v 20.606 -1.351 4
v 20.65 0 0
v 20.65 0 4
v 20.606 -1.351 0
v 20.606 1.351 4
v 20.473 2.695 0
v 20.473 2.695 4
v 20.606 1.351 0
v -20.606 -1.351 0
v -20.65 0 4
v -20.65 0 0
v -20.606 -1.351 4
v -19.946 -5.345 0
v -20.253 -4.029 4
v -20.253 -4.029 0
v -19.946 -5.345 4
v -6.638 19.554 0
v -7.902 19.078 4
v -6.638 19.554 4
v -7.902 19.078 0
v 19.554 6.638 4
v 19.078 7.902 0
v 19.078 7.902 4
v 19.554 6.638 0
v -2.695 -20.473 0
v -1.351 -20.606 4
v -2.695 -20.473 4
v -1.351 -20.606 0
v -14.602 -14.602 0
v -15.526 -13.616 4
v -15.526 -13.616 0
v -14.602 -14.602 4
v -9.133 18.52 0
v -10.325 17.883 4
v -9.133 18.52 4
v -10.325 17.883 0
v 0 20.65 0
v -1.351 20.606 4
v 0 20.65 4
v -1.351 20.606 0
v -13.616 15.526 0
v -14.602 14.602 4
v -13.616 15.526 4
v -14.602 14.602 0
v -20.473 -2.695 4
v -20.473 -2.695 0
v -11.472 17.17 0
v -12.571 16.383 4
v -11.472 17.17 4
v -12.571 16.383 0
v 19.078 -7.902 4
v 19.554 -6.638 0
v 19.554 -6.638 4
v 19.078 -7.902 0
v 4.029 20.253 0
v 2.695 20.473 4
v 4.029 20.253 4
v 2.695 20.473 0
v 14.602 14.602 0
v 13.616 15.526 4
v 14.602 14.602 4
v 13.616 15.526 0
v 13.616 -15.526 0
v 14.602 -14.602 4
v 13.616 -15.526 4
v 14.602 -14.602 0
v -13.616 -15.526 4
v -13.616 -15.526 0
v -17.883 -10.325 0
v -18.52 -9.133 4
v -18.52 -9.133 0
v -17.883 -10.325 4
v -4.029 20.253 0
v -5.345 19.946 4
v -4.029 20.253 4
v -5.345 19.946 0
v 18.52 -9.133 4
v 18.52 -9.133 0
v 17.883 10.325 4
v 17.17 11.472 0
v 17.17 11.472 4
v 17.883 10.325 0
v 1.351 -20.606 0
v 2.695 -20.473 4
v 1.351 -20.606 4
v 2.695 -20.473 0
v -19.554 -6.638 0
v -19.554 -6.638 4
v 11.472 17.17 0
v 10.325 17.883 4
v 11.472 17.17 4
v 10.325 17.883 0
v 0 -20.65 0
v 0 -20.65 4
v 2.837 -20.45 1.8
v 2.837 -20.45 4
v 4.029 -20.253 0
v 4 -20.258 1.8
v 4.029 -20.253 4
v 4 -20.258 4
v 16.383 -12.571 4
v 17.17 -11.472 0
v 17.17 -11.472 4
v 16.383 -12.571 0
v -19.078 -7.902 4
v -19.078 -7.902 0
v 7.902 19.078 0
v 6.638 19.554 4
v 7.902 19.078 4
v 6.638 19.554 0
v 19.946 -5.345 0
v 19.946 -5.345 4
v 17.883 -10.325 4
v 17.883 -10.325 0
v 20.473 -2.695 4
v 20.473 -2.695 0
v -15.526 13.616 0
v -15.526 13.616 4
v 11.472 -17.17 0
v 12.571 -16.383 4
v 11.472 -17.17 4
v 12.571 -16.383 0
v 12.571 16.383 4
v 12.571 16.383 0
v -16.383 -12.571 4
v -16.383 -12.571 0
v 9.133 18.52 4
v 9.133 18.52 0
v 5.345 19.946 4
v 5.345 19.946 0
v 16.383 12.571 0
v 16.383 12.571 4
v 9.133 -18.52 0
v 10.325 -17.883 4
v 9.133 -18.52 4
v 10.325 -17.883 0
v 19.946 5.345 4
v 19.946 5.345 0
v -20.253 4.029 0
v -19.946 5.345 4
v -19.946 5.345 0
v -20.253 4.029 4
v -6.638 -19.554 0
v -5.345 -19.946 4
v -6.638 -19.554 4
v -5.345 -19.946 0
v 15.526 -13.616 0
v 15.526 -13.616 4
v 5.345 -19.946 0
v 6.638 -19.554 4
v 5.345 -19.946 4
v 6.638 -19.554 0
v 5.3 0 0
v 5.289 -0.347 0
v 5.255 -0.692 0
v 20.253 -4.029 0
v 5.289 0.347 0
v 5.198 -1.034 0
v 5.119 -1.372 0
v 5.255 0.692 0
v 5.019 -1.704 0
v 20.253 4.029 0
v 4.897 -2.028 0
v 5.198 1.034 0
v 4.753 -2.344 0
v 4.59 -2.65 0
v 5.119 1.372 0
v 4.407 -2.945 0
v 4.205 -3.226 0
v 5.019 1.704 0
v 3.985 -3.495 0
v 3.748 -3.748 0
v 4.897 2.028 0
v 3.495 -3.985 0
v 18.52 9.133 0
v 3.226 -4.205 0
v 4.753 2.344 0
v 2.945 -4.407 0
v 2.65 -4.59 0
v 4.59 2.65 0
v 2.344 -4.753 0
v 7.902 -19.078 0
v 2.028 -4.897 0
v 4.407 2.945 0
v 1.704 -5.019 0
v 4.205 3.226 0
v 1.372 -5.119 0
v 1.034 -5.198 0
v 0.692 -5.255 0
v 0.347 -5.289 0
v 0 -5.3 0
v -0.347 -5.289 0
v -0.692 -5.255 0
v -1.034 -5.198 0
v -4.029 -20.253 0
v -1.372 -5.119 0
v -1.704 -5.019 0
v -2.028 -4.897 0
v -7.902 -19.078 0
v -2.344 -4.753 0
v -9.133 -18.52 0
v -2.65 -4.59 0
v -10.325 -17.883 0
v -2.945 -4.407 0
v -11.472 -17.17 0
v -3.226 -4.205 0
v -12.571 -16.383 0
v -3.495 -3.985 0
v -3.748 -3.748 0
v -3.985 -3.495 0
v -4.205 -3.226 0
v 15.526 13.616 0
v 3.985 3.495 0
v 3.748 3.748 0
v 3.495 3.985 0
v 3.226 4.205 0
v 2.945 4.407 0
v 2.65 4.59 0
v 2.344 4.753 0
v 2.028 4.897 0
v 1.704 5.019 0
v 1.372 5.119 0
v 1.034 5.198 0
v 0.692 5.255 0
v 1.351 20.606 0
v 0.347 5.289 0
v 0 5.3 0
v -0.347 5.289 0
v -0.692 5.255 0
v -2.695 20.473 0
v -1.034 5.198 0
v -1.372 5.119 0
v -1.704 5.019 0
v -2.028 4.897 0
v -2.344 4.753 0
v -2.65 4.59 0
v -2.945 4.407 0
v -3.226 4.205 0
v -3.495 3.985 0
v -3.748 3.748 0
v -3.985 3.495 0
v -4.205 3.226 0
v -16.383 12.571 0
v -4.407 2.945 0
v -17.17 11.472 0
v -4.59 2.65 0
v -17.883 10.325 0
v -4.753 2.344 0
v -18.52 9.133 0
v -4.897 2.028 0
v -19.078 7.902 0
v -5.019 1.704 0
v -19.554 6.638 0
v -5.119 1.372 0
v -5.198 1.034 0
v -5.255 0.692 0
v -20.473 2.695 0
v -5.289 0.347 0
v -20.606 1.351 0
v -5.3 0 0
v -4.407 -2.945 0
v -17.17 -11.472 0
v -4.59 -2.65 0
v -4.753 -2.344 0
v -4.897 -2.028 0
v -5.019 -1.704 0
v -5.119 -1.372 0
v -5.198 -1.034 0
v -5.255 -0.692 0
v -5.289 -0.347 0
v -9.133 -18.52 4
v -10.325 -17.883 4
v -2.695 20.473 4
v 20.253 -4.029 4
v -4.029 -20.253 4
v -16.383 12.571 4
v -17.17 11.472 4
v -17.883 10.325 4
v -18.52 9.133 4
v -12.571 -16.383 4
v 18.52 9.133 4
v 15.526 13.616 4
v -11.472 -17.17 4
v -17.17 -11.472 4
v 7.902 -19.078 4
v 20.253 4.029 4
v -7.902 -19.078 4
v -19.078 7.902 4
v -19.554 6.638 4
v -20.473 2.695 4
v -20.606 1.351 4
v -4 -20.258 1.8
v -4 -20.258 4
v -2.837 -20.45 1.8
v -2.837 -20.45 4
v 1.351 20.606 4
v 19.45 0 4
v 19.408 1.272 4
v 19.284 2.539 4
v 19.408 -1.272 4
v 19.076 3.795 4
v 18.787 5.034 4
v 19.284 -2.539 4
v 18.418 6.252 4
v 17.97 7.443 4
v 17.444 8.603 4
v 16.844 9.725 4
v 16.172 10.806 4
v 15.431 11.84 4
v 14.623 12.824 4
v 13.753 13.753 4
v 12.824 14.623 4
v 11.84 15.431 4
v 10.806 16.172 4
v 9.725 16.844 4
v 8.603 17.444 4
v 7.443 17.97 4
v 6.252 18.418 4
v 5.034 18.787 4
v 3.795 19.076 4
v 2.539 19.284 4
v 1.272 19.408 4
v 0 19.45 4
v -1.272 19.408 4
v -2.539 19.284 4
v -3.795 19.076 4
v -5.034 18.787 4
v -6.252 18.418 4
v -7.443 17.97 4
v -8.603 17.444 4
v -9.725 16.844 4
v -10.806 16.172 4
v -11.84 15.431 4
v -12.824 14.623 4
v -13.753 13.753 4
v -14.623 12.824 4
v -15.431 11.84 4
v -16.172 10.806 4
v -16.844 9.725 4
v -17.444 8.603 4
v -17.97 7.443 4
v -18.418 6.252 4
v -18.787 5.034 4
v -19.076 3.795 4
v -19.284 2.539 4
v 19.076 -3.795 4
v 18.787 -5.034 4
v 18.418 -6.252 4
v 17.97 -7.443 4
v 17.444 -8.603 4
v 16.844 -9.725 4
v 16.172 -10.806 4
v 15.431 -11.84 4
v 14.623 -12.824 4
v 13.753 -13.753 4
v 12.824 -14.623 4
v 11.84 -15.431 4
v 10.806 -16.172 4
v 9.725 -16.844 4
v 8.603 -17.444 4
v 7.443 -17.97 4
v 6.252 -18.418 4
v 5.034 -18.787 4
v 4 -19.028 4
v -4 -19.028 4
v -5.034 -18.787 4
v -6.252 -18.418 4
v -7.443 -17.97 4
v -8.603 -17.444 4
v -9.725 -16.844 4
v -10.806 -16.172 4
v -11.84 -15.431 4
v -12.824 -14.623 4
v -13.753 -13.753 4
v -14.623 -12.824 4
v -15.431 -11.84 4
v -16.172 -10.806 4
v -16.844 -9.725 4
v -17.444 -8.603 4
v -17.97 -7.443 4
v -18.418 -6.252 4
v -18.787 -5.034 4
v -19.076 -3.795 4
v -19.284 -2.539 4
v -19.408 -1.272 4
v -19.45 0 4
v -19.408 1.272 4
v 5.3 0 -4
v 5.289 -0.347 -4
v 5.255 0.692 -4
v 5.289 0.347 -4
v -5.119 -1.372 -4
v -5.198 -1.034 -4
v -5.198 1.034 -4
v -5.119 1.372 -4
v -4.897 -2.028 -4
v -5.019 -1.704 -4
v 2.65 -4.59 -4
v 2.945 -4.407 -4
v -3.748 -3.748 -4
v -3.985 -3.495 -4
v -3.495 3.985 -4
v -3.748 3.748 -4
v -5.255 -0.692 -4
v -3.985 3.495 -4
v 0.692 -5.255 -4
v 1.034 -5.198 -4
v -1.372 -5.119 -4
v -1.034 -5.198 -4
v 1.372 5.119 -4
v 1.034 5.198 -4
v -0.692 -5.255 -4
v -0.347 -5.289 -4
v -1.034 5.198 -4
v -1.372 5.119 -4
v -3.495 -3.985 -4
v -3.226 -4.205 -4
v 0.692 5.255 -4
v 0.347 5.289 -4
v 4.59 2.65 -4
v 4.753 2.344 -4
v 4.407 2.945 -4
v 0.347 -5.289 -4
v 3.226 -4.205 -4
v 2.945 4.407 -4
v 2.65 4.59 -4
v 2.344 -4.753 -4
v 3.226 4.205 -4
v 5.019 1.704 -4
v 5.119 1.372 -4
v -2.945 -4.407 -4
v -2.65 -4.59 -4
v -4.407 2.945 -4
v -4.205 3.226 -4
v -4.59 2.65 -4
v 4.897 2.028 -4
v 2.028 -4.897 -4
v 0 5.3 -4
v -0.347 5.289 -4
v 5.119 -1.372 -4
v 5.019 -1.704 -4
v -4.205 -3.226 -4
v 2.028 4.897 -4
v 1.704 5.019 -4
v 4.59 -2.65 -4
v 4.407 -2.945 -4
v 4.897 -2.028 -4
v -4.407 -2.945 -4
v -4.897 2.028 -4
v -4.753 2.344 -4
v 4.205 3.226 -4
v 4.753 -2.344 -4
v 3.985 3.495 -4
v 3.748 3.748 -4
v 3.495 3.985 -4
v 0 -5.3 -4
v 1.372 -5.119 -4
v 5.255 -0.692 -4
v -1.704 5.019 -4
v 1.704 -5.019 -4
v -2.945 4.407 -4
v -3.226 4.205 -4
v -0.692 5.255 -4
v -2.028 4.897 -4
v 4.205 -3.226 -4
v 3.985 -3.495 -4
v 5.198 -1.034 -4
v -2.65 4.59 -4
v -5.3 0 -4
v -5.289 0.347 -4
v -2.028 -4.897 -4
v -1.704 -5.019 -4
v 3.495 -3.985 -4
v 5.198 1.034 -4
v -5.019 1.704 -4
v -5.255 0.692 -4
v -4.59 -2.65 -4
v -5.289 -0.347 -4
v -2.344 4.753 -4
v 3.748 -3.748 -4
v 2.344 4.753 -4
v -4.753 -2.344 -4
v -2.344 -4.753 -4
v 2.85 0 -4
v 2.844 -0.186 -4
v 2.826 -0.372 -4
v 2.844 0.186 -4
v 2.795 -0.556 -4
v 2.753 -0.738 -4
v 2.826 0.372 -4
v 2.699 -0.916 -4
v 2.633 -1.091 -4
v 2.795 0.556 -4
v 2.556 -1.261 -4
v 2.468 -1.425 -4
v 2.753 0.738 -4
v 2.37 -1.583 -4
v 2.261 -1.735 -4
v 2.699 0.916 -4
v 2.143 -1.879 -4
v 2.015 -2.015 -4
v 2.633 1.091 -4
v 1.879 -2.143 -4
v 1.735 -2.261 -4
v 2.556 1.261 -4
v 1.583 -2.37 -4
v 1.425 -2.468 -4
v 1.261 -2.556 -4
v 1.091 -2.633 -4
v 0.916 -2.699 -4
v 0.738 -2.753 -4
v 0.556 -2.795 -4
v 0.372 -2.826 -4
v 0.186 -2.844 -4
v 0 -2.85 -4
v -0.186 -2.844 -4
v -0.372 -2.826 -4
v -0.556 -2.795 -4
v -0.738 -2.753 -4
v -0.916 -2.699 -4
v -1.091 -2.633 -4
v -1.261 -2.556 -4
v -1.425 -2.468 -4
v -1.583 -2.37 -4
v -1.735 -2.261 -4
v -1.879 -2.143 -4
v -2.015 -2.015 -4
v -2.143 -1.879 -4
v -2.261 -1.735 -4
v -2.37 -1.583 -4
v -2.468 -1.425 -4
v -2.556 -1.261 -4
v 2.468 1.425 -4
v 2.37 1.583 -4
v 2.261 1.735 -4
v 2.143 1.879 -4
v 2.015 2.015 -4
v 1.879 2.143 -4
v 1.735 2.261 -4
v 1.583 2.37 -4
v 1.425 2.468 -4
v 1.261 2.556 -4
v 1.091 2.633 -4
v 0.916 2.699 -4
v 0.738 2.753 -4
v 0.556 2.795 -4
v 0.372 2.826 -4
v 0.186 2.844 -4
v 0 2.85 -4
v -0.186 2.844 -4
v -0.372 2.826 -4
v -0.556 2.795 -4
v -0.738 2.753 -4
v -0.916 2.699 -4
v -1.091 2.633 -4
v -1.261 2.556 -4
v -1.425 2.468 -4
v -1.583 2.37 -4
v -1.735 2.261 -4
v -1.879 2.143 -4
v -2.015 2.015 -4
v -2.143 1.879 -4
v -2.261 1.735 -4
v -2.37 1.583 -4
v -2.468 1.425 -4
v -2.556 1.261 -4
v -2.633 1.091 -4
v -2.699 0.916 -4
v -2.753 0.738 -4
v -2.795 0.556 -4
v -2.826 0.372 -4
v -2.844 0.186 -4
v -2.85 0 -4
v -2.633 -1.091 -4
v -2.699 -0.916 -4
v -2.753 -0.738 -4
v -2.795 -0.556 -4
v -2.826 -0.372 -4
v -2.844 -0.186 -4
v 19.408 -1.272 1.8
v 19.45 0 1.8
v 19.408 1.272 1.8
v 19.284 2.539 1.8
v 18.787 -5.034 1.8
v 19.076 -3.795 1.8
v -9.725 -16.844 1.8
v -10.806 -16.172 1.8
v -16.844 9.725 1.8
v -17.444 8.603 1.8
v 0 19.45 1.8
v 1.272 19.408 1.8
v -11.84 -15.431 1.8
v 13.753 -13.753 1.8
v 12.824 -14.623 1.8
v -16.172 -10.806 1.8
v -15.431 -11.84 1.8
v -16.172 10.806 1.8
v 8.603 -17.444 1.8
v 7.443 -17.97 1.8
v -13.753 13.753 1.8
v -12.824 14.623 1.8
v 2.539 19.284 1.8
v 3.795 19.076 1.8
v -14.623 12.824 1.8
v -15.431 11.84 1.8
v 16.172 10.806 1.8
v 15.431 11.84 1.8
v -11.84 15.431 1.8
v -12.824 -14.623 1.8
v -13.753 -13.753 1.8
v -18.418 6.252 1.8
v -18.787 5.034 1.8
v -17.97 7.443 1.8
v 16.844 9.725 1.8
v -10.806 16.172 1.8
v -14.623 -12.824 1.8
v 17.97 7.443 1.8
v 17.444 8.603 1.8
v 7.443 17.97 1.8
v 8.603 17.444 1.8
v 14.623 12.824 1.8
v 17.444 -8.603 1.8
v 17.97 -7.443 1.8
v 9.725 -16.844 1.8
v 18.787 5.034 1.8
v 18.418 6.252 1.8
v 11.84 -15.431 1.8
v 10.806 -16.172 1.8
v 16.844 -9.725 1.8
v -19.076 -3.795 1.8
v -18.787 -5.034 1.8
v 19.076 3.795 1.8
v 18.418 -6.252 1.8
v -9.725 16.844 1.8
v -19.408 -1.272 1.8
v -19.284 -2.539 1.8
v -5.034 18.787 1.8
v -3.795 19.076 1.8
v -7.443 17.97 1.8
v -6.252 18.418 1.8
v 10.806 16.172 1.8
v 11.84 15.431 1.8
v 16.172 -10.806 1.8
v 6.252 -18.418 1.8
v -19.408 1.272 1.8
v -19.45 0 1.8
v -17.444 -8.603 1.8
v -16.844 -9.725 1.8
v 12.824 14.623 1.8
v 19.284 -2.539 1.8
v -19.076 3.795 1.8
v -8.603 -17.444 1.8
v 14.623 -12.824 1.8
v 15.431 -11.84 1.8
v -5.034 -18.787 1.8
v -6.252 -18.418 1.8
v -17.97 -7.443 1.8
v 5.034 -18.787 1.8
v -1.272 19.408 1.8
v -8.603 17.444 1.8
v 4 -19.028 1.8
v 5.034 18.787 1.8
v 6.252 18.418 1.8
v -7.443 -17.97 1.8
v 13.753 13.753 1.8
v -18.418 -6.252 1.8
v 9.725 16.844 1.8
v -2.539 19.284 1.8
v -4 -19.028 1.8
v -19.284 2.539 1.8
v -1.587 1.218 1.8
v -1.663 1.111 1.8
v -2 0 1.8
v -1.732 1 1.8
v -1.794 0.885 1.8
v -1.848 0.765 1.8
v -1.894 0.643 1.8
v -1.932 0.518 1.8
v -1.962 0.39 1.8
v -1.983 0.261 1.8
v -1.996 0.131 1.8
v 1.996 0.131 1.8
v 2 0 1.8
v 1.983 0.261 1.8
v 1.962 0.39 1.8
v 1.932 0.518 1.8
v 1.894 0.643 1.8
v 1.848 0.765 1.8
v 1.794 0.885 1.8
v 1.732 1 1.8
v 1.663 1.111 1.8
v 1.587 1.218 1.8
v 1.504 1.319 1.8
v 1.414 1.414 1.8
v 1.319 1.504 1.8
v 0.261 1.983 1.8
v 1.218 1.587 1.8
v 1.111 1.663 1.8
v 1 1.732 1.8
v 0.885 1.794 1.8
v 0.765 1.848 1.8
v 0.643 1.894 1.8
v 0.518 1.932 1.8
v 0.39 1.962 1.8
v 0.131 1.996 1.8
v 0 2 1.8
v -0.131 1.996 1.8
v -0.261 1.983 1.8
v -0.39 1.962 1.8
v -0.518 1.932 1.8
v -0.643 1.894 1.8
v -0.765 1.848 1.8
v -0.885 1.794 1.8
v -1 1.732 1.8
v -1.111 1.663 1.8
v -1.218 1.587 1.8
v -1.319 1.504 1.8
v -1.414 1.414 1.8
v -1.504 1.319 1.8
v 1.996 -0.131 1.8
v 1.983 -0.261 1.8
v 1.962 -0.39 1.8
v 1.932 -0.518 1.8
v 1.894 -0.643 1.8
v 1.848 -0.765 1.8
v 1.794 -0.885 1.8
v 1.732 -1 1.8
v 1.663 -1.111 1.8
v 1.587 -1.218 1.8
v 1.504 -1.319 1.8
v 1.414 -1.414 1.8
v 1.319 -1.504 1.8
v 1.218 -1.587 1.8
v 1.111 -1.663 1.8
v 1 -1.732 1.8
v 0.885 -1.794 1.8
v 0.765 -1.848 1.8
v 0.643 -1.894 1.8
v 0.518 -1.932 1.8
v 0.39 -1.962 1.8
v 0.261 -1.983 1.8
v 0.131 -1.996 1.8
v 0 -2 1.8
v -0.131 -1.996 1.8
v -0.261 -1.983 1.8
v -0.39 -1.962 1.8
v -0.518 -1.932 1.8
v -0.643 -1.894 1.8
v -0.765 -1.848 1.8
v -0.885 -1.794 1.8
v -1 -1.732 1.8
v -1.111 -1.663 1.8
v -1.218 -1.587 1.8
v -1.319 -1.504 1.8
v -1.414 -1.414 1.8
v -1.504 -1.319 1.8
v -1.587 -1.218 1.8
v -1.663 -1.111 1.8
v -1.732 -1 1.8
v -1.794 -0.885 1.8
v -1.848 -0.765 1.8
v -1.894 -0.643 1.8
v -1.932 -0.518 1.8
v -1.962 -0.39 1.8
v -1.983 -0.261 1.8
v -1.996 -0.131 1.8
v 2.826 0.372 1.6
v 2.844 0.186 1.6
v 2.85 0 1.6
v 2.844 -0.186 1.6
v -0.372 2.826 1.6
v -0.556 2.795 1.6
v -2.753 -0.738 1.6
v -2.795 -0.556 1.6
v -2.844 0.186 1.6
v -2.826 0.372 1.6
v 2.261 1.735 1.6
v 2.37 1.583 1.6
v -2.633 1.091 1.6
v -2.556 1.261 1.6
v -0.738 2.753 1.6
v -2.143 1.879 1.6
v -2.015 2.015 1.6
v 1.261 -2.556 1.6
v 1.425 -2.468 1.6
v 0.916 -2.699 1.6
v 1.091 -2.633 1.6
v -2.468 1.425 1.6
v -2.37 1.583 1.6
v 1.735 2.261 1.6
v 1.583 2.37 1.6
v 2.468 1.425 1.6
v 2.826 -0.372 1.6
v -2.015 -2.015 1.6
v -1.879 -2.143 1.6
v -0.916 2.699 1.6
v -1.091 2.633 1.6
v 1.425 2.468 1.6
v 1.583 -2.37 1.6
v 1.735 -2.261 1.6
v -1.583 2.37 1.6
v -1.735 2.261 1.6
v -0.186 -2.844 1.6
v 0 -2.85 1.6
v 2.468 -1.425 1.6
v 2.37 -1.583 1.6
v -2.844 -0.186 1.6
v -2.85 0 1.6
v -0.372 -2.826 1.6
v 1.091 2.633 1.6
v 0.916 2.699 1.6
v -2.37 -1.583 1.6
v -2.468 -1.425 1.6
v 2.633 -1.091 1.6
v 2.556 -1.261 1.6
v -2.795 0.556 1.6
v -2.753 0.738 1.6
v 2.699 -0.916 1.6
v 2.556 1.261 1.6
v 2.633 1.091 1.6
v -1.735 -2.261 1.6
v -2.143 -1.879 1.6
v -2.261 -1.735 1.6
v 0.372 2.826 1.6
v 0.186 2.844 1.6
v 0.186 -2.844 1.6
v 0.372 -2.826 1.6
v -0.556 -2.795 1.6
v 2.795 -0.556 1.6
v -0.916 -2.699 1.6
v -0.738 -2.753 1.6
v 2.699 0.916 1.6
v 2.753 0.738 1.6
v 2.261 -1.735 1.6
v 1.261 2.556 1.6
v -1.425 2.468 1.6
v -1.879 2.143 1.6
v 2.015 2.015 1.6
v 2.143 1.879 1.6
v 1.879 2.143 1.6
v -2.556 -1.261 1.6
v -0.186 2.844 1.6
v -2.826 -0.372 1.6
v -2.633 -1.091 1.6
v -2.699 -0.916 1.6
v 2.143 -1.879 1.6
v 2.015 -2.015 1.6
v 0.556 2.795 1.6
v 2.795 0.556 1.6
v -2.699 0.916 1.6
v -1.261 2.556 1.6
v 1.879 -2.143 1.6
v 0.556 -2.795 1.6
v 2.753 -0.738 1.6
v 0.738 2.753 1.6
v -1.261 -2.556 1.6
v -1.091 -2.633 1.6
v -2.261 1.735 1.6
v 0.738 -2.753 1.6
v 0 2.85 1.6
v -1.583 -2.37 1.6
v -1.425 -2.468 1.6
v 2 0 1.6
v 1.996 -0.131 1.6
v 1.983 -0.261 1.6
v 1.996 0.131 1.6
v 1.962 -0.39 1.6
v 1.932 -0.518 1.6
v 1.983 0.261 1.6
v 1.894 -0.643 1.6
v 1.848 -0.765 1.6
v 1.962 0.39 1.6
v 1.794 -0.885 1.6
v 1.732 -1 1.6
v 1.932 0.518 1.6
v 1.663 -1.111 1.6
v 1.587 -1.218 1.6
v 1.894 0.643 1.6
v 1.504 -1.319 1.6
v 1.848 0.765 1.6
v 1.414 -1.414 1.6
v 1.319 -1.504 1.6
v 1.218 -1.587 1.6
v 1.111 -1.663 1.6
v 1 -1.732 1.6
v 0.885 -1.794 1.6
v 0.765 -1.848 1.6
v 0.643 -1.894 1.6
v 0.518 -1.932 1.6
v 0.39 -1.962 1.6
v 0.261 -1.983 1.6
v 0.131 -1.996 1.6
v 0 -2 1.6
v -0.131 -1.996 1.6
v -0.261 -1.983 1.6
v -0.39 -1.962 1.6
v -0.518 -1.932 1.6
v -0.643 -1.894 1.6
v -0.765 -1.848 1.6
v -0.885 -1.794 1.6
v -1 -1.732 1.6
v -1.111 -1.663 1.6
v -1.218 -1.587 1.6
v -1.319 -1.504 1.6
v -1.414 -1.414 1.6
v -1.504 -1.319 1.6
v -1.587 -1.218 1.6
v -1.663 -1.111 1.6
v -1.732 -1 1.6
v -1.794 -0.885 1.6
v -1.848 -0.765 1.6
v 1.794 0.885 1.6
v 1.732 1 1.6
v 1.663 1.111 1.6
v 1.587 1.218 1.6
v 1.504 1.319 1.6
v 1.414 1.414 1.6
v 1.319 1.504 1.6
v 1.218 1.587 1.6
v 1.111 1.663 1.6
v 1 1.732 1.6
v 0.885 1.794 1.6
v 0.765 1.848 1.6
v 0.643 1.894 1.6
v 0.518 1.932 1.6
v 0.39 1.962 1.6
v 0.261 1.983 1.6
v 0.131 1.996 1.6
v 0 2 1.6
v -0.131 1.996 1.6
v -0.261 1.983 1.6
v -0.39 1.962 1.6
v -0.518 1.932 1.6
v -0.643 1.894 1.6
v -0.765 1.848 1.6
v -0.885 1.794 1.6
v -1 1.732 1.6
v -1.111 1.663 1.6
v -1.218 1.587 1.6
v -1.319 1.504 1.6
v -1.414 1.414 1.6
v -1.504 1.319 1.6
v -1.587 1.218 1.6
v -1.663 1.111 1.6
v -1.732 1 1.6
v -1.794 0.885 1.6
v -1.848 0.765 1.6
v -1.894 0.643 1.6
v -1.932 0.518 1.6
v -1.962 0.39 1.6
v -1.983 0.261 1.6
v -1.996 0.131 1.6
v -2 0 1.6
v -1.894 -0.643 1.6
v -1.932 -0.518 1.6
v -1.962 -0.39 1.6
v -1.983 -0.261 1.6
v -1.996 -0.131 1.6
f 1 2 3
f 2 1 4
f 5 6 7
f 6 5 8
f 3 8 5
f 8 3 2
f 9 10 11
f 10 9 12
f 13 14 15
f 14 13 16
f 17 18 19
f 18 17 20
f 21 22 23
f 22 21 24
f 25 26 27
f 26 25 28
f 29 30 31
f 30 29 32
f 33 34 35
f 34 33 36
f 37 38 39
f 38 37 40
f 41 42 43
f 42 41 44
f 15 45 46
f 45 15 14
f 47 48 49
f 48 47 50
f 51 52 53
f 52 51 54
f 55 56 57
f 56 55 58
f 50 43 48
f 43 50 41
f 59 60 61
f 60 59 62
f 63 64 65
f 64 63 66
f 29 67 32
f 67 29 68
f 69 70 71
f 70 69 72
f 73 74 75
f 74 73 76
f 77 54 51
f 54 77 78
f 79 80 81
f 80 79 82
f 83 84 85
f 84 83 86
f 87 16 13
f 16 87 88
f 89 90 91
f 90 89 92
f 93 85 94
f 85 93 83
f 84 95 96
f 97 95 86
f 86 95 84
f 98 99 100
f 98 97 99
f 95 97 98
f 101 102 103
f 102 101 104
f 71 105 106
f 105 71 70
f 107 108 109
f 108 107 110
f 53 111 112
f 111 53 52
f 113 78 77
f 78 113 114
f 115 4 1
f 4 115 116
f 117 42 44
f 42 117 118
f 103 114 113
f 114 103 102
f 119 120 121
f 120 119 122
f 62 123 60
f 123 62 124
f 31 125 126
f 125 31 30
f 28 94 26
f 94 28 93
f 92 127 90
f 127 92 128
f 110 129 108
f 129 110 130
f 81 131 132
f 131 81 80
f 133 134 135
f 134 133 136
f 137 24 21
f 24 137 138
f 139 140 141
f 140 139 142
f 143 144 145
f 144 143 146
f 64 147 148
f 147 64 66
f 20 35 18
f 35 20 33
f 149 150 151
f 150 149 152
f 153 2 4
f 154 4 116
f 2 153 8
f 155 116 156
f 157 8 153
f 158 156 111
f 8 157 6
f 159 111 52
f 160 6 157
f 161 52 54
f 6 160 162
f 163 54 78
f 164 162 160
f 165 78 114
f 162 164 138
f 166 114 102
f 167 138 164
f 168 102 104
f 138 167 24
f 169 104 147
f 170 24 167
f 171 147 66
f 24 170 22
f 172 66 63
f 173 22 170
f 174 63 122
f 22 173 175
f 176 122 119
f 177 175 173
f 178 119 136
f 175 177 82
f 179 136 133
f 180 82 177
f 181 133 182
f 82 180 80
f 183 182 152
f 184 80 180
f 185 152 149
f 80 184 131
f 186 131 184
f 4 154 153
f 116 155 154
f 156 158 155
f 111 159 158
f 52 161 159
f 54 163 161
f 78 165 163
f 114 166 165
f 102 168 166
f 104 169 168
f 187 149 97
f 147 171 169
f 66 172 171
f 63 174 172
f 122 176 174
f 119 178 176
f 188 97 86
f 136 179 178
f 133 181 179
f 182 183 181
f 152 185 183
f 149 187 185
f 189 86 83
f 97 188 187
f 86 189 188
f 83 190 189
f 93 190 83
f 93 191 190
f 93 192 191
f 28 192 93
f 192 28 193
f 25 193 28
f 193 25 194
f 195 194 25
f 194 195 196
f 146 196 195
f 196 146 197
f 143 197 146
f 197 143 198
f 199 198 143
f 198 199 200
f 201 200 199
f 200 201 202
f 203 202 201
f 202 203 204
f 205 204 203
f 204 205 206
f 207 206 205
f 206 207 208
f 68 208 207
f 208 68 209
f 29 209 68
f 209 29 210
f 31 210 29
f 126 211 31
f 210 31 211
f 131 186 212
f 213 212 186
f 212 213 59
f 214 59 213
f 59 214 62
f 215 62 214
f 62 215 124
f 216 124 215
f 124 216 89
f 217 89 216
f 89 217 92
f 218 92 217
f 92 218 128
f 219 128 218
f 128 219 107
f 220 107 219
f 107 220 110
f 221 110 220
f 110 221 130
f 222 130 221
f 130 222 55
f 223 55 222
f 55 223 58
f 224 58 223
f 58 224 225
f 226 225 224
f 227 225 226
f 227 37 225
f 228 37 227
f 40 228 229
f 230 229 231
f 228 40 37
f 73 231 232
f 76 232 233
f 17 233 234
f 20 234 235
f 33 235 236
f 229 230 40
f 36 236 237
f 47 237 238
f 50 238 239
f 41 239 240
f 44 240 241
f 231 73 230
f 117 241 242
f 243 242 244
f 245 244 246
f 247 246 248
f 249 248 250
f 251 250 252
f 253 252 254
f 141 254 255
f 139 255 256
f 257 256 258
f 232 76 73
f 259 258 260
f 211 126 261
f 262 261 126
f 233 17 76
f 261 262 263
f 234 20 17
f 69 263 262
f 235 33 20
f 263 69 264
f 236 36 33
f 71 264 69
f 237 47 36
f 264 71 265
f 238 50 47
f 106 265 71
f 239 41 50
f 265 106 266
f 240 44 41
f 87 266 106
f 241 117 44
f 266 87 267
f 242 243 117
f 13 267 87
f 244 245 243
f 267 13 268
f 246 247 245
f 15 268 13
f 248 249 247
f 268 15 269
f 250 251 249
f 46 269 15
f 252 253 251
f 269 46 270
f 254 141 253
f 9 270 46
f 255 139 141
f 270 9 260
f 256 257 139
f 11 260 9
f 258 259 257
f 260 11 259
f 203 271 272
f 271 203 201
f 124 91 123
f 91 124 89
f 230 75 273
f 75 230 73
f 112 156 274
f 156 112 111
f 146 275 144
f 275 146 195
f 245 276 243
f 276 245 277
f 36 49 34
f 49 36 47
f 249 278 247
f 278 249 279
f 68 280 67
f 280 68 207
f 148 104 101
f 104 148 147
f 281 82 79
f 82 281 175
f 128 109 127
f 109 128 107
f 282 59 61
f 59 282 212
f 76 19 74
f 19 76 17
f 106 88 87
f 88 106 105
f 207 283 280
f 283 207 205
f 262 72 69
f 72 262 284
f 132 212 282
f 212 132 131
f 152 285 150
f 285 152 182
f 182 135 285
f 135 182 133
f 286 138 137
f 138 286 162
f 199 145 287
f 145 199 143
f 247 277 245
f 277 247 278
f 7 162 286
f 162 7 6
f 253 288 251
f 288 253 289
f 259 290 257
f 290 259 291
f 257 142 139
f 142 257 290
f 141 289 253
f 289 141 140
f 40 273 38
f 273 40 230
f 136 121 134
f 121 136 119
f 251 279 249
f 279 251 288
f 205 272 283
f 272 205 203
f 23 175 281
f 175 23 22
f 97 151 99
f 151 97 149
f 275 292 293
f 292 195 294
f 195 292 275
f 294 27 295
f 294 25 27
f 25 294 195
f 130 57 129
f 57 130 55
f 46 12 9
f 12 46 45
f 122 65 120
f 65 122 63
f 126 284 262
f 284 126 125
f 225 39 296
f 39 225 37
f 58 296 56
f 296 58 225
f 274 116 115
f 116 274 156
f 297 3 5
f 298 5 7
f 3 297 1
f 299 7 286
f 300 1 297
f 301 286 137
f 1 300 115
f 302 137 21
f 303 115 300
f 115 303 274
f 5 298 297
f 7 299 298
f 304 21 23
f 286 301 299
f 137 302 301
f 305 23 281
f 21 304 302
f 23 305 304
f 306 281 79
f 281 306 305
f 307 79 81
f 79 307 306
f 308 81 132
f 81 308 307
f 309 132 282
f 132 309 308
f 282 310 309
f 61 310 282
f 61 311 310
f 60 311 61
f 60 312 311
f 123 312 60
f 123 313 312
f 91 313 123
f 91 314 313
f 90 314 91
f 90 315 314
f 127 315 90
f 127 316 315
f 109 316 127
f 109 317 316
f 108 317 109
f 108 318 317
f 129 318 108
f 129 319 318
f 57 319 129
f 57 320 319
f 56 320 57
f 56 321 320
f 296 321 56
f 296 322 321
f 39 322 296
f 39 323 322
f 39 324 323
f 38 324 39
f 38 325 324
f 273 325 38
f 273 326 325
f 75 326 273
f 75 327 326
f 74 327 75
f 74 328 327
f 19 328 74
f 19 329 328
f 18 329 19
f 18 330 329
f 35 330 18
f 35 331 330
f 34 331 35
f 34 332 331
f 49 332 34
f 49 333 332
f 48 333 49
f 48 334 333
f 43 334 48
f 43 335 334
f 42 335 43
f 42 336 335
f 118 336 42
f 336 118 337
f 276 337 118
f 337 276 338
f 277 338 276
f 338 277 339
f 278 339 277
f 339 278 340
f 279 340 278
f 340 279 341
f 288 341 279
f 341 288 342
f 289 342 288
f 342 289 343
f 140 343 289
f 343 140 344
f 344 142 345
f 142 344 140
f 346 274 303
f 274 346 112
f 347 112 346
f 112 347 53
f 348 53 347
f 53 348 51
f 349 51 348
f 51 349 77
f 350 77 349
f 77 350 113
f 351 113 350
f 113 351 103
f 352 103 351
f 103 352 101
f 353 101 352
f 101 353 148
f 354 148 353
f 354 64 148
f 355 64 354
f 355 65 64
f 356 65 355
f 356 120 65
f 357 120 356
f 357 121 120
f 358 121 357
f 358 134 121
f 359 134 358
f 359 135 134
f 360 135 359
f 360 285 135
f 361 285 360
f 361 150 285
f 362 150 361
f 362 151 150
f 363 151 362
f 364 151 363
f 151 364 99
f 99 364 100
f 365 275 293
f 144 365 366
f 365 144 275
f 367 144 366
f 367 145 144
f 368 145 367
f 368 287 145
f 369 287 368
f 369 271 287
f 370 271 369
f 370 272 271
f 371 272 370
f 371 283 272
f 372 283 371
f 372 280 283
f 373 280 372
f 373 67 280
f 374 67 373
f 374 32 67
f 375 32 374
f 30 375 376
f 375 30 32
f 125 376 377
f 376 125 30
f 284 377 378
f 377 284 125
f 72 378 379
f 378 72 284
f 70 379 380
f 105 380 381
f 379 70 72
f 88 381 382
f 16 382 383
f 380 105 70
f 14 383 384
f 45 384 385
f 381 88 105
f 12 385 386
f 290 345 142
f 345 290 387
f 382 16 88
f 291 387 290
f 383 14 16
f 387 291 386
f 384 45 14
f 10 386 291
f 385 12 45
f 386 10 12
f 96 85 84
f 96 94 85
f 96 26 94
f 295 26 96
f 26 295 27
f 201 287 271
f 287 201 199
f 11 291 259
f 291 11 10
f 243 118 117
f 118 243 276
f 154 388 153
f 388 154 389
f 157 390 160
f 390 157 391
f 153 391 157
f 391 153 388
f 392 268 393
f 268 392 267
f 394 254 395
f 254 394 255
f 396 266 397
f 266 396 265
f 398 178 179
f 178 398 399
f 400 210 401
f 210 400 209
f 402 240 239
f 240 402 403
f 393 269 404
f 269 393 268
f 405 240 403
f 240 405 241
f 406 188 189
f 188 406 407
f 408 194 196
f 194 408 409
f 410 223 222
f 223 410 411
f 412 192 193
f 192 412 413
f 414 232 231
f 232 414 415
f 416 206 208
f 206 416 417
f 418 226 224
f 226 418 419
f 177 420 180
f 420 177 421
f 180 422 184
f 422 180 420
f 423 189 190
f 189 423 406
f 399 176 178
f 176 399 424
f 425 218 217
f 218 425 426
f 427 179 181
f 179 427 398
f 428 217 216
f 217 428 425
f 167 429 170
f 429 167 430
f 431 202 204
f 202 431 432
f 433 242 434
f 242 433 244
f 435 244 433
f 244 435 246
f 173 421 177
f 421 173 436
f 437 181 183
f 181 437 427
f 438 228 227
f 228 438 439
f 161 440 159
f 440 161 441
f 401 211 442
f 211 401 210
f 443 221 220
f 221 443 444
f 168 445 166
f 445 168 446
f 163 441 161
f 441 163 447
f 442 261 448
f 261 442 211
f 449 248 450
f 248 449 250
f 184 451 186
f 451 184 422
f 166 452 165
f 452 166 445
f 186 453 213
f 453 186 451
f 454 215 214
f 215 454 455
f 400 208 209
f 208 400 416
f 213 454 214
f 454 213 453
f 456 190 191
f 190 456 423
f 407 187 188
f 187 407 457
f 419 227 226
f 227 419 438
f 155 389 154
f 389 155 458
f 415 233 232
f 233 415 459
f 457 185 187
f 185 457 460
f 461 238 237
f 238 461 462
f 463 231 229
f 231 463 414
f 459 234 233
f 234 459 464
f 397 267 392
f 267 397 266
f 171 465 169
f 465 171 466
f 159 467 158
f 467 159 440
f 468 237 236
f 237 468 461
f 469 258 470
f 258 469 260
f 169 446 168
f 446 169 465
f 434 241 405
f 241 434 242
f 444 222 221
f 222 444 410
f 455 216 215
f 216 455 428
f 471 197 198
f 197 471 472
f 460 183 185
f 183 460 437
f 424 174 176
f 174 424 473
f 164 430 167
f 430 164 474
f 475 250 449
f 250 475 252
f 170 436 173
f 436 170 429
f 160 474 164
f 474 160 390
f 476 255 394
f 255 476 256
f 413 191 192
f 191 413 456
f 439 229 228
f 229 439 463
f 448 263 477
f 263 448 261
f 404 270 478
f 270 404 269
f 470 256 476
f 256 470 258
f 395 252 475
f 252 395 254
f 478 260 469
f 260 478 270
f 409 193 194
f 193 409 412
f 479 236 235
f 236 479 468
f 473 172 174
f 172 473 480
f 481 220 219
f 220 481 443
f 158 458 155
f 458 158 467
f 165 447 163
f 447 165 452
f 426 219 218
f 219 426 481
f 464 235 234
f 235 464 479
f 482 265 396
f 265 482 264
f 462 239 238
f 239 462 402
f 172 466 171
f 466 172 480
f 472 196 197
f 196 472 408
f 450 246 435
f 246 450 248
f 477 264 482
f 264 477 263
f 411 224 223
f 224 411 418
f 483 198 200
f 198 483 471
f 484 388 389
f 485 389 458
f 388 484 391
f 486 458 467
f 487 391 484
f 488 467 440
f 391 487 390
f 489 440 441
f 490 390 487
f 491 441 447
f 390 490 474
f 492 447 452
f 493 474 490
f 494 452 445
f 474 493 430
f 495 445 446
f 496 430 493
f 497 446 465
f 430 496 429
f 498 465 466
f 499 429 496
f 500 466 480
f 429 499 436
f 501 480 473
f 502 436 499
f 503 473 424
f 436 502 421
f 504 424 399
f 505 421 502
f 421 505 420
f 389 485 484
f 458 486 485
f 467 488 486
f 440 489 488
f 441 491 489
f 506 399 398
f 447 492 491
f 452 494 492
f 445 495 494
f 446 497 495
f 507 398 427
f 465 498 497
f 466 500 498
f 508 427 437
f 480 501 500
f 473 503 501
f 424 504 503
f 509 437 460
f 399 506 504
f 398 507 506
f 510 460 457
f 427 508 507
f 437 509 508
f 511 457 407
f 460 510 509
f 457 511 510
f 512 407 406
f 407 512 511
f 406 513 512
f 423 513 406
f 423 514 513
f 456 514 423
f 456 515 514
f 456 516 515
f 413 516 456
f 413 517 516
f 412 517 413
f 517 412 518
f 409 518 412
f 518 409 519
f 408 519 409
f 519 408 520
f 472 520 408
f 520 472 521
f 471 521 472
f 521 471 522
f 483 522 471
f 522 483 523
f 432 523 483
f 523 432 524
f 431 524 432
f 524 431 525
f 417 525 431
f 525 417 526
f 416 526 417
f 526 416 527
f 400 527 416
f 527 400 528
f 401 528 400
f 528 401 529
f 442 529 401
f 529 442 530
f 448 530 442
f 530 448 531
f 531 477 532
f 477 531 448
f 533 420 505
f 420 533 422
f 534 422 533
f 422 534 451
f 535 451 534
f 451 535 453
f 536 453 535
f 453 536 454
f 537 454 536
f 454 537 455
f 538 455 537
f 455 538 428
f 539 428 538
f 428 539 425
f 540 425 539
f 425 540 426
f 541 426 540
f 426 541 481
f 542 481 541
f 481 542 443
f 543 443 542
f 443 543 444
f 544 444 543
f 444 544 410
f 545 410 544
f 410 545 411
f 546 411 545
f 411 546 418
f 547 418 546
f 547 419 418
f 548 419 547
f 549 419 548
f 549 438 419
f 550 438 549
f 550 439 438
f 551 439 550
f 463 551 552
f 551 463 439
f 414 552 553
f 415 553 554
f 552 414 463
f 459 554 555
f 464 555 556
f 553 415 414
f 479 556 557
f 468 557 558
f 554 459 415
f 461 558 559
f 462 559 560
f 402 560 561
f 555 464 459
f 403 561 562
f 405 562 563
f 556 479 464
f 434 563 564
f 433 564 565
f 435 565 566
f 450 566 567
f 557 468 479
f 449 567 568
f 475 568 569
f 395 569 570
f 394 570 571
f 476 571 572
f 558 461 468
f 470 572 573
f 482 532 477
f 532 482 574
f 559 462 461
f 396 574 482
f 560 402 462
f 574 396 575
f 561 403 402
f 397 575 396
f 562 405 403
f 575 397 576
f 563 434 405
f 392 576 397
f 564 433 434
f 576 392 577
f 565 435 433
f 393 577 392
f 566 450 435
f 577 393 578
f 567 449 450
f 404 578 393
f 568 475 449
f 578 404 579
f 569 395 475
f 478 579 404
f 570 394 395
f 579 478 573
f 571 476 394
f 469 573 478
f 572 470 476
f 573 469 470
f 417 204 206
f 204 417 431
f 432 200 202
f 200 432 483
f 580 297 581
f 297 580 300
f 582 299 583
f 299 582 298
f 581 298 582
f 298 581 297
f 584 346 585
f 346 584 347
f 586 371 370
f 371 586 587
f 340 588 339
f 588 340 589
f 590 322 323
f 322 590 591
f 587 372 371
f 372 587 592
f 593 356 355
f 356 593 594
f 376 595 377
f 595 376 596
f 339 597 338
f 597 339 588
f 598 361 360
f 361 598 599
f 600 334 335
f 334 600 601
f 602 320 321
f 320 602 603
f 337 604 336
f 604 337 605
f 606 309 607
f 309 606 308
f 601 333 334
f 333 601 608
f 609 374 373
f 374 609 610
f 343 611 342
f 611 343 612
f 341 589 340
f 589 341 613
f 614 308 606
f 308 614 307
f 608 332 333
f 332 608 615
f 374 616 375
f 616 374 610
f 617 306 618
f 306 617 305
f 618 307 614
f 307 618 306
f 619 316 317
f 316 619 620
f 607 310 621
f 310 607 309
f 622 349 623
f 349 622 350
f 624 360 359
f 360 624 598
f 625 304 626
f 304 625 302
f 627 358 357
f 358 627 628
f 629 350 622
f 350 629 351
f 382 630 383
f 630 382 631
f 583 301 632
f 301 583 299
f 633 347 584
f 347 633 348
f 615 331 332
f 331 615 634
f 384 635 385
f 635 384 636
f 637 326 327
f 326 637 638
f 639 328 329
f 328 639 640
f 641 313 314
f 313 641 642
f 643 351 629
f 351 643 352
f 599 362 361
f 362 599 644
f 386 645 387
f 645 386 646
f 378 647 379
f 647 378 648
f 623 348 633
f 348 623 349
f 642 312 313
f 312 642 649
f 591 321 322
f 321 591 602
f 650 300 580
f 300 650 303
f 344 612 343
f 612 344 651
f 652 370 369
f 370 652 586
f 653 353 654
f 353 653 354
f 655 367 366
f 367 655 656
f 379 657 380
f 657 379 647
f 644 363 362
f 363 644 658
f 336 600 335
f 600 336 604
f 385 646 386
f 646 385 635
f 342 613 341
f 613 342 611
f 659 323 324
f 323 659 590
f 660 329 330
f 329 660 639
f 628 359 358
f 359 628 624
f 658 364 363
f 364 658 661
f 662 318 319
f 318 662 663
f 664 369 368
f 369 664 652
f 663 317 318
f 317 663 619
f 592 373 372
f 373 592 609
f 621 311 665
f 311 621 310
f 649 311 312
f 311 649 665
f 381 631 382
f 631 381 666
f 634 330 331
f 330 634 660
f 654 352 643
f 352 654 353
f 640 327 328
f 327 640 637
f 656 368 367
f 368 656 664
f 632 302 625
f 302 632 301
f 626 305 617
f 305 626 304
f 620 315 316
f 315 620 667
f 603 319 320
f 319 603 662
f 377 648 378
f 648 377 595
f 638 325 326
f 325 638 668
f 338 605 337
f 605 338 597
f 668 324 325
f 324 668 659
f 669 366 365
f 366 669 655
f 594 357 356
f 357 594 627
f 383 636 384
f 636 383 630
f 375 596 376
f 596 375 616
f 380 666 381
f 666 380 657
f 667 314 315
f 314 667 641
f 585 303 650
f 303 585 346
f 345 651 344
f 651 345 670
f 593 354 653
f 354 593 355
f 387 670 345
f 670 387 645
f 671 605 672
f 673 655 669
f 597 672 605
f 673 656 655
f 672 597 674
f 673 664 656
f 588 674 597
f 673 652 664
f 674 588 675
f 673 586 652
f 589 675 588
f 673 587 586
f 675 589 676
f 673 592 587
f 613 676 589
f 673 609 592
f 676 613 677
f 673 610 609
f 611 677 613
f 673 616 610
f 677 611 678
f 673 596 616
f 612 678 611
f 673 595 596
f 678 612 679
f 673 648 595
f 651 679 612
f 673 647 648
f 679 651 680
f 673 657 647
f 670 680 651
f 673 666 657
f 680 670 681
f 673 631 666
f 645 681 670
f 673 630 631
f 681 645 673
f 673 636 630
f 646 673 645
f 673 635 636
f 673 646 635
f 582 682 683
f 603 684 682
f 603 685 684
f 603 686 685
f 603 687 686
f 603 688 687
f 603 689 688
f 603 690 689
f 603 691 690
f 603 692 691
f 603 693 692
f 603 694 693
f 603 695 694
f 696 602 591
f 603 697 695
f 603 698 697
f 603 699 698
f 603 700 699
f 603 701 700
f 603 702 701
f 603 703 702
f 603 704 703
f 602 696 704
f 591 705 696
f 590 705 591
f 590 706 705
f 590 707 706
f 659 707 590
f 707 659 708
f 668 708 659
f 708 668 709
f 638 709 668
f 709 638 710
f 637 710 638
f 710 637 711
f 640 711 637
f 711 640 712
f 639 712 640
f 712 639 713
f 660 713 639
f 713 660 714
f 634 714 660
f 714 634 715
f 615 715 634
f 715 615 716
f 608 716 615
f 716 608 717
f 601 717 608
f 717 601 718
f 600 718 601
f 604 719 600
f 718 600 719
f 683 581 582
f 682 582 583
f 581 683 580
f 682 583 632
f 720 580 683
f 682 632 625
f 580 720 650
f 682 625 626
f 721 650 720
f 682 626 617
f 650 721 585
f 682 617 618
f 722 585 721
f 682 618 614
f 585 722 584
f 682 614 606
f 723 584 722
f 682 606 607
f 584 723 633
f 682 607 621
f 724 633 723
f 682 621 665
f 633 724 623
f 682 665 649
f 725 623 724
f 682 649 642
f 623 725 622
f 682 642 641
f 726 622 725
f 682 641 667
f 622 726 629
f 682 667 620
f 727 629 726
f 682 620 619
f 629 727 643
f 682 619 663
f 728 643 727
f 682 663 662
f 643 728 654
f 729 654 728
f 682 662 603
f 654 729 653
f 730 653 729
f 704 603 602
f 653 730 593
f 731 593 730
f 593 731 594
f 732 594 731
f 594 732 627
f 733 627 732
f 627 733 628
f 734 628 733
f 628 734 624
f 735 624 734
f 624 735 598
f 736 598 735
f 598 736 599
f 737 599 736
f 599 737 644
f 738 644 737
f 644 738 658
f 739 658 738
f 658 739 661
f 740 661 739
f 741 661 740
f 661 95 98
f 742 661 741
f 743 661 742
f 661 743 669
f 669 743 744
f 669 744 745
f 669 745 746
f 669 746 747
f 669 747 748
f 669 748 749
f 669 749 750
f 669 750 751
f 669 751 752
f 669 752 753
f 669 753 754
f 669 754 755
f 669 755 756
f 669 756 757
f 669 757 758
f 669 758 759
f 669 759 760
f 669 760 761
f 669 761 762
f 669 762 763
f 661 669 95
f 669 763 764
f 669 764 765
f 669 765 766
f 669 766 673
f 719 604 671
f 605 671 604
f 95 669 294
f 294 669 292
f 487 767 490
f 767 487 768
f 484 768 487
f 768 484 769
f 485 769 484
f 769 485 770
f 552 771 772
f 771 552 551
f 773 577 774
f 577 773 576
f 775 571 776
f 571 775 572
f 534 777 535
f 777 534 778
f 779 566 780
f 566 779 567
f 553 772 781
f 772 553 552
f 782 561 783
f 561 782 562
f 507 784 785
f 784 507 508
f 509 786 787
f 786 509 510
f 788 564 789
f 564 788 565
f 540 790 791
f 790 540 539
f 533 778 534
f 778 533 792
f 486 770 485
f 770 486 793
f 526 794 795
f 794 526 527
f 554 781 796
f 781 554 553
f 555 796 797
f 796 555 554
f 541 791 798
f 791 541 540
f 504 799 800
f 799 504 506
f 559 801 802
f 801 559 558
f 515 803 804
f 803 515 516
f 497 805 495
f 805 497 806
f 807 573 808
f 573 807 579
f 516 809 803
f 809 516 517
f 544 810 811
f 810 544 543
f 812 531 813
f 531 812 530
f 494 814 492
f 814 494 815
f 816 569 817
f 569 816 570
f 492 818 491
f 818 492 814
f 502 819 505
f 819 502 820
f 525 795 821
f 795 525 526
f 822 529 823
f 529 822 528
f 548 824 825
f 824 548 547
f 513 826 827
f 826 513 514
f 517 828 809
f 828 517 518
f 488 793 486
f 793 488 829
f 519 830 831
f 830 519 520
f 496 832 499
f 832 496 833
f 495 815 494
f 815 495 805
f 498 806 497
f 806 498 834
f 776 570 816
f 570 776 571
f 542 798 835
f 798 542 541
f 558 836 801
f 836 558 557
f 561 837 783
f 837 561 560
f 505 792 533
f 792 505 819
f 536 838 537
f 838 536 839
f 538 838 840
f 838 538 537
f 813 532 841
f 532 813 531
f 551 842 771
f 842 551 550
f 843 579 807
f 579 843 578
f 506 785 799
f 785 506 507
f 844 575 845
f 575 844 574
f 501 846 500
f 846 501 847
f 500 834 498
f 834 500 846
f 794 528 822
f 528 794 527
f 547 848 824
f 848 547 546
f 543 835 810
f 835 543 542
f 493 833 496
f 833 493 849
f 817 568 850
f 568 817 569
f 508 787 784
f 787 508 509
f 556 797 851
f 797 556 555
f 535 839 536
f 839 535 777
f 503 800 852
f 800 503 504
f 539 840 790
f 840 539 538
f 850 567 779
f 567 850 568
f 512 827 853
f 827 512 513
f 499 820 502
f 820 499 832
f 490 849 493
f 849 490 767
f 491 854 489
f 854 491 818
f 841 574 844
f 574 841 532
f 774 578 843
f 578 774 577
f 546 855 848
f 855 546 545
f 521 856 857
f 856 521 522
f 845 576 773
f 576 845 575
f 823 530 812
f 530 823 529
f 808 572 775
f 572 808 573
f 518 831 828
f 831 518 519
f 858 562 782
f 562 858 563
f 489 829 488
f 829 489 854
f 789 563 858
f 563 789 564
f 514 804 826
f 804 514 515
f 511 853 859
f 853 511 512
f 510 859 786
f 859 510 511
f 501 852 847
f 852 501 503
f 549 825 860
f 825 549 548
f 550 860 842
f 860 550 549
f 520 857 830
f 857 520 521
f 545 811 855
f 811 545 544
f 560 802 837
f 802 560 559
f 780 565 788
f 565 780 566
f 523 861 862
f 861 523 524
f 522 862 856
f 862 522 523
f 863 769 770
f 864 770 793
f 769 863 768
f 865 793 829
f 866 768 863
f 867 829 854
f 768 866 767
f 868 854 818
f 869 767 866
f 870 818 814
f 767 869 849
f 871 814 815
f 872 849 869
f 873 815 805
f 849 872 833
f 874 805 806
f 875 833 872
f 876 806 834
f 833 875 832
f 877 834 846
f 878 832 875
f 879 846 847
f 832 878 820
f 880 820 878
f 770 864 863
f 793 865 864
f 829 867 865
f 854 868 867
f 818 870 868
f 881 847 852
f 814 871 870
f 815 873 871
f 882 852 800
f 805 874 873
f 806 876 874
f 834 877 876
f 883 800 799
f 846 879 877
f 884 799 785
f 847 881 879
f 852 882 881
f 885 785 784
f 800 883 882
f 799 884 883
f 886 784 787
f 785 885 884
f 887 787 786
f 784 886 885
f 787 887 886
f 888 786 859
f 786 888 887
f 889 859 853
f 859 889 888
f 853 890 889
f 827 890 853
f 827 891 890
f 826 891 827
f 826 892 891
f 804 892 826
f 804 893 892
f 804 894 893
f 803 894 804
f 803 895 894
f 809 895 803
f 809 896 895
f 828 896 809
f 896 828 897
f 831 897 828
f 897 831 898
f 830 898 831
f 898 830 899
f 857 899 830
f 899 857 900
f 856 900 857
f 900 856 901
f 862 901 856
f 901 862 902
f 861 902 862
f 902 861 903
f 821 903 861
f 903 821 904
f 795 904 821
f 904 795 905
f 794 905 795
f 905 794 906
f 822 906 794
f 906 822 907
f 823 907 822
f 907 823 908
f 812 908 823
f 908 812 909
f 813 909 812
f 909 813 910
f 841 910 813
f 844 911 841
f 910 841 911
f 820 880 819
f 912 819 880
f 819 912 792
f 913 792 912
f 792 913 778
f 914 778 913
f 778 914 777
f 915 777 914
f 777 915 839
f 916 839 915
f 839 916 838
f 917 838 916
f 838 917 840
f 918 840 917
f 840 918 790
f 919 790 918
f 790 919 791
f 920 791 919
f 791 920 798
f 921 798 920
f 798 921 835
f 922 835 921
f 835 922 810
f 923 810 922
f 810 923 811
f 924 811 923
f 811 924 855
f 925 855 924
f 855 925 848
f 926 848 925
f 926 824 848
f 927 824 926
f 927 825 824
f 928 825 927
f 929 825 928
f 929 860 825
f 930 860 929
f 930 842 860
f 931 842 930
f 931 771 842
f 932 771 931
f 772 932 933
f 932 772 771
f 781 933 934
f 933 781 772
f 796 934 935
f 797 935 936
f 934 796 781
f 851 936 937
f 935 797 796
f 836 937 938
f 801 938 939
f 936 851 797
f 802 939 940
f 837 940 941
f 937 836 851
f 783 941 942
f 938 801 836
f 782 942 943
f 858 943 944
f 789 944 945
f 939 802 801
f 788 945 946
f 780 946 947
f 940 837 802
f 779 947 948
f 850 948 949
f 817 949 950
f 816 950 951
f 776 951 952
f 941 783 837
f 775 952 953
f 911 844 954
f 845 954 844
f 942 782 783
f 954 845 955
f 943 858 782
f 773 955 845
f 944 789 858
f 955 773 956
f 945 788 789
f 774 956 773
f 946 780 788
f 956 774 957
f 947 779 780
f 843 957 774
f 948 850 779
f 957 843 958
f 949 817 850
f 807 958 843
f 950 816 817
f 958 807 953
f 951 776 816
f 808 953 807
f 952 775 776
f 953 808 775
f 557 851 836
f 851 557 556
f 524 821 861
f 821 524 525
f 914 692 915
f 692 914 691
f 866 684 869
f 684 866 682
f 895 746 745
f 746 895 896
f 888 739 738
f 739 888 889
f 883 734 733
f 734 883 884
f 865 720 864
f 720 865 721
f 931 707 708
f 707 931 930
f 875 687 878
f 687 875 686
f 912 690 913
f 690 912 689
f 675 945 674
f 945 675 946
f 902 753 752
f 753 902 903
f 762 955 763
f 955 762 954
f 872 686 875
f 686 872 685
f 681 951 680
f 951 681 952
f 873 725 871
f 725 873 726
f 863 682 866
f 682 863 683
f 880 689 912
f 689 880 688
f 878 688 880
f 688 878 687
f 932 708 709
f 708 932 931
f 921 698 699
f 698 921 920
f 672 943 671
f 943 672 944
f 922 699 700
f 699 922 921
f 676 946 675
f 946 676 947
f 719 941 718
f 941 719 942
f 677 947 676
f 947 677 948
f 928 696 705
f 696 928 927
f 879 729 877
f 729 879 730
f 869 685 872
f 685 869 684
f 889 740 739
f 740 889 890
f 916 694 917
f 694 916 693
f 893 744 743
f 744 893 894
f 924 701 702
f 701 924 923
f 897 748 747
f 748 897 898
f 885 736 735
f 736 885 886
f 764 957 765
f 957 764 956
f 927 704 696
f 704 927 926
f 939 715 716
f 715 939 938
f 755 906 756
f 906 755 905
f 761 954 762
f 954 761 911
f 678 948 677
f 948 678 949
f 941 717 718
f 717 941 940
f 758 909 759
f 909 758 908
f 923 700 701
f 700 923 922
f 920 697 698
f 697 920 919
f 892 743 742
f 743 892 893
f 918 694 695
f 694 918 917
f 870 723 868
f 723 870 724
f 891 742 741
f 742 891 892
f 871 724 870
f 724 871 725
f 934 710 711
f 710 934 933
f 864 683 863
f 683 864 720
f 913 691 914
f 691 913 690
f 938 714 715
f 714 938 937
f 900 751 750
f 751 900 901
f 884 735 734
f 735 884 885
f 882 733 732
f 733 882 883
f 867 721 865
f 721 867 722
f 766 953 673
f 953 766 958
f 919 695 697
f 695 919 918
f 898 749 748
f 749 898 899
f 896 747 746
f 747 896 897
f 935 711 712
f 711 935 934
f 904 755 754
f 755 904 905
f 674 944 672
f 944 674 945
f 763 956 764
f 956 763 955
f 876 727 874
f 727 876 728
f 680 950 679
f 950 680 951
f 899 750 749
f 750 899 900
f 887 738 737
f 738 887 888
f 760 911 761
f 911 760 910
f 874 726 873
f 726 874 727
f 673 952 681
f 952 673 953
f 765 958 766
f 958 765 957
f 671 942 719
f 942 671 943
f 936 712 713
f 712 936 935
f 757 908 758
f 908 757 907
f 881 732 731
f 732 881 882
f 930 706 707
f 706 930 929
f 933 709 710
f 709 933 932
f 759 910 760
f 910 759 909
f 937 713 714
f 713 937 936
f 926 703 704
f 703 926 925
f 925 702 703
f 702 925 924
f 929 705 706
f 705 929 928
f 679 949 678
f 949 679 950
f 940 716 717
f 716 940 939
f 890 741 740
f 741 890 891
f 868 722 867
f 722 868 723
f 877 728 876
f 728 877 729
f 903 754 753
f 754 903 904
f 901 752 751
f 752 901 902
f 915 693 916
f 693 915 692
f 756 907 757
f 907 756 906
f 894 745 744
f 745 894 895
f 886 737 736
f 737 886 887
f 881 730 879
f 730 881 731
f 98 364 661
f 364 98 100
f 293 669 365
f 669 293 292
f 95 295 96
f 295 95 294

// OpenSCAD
// file: params.scad
// Shared parameters for the DMX truss controller housing.
// All sizes in mm. "VERIFIED" = read from a datasheet/drawing, "PROPOSAL" = my design choice.
// Coordinates: z is the axis through the middle of the ring, +z towards the viewer.
// z = 0 is the wall side (back of the base).

$fn = 96;

// ---------- base (octagon) ----------
base_flat      = 90;     // across flats                                   PROPOSAL
base_depth     = 22;     // z height of the base for the FIRST TEST         PROPOSAL
base_wall      = 2.5;    // wall thickness                                 PROPOSAL
back_plate     = 2.5;    // back plate thickness                           PROPOSAL
base_r_corner  = base_flat / 2 / cos(22.5);   // circumradius of the octagon

// ---------- pedestal and ring ----------
pedestal_od    = 58;     // PROPOSAL
pedestal_h     = 18;     // PROPOSAL
ring_od        = 58;     // PROPOSAL
ring_id        = 43.0;   // PROPOSAL: carrier radius 20.65 + 0.85 mm running gap (was 41.6 = only 0.15 mm)
ring_h         = 13.2;   // PROPOSAL
ring_gap       = 0.8;    // gap between pedestal top and ring                 PROPOSAL

// ---------- motor: SparkFun ROB-20441 = OT-EM3215D2450Y1R-BEZE (datasheet p8) ----------
// Sizes below are read from the drawing. UNVERIFIED (not stated on the drawing): which face is the stator
// mounting face, which part turns (rotor cup vs hollow shaft), and the gap between rotor and stator base.
// The drawing also shows 2 x dia 2.0 holes on a dia 21.0 circle (not used here). Check on the real motor first.
motor_od       = 32.0;   // VERIFIED rotor/body diameter (32.0 +0.025)
motor_h        = 15.0;   // VERIFIED overall height (15.0 +-0.2)
motor_body_h   = 12.8;   // VERIFIED height of the rotor body without the boss
motor_boss_d   = 11.5;   // VERIFIED raised boss on top of the rotor (11.5 +-0.1)
motor_boss_h   = 2.2;    // VERIFIED (15.0 - 12.8)
motor_bore     = 5.9;    // VERIFIED hollow shaft (5.9 +0.1)
motor_hole_n   = 3;      // read from drawing: three M1.6 holes (face unverified)
motor_hole_pcd = 20.5;   // VERIFIED pitch circle (20.5 +0.1)
motor_hole_thr = 1.6;    // VERIFIED thread M1.6 x 0.35, depth 6.0
motor_poles    = 8;      // VERIFIED datasheet: 8 magnetic poles (SmartKnob firmware assumed 14)

// ---------- display: Waveshare 1.28in Touch LCD ----------
disp_od        = 38.5;   // VERIFIED (Waveshare), round PCB diameter
disp_glass     = 32.4;   // VERIFIED
disp_len       = 39.89;  // VERIFIED, module length including the connector tab

// ---------- Arduino Nano ESP32 ----------
nano_l         = 43.18;  // VERIFIED (Arduino datasheet, mechanical page)
nano_w         = 17.78;  // VERIFIED
nano_hole_dx   = 40.64;  // VERIFIED
nano_hole_dy   = 15.24;  // VERIFIED
nano_hole_d    = 1.66;   // VERIFIED (take M1.6 screws)

// ---------- perfboard ----------
board_x        = 70;     // user owns a 5 x 7 cm perfboard
board_y        = 50;
board_corner   = 4;      // corner cut so it fits the octagon                PROPOSAL

// ---------- USB-C plug (first test: supply plugs straight into the Nano) ----------
usbc_slot_w    = 16;     // PROPOSAL: spec max overmold 12.35 x 6.5, real cables up to 13.0 x 7.4
usbc_slot_h    = 10;     // PROPOSAL

// ---------- Neutrik D-size panel cut-out (XLR NC3FD-LX and USB-C NAUSBC-5G-FL alike) ----------
d_hole         = 24;     // VERIFIED (Neutrik drawing)
d_screw_dx     = 19;     // VERIFIED
d_screw_dy     = 24;     // VERIFIED
d_screw_d      = 3.2;    // VERIFIED
d_flange_w     = 26;     // VERIFIED
d_flange_h     = 31;     // VERIFIED

// ---------- wall mount ----------
key_dx         = 70;     // distance between the two keyholes                PROPOSAL
key_head       = 7;      // head hole diameter                               PROPOSAL
key_slot       = 3.5;    // slot width                                       PROPOSAL
key_slot_len   = 7;      // PROPOSAL

// ---------- fits ----------
fit            = 0.2;    // printer clearance for sliding/clamped fits (PETG, 0.4 mm nozzle)

echo(str("octagon circumradius = ", base_r_corner));

// ---------- z stack of the turning side, derived once and used by every part ----------
// z = 0 is the back of the base. Base is base_depth tall; the front plate closes it at the top.
plate_t        = 2.5;                              // front plate thickness
z_plate_top    = base_depth;                       // 22
z_motor_bot    = z_plate_top;                      // the stator sits ON the plate
z_rotor_top    = z_motor_bot + motor_body_h;       // 34.8
z_boss_top     = z_motor_bot + motor_h;            // 37.0
z_ped_bot      = z_plate_top;
z_ped_top      = z_ped_bot + pedestal_h;           // 40
z_ring_bot     = z_ped_top + ring_gap;             // 40.8
z_ring_top     = z_ring_bot + ring_h;              // 54.0
// display: glass about 1.5 mm below the ring top
glass_recess   = 1.5;                              // PROPOSAL
module_t       = 3.4;                              // pcb + lcd stack. ESTIMATE, not measured on the real module
z_module_top   = z_ring_top - glass_recess;
z_module_bot   = z_module_top - module_t;
carrier_t      = 4;                                // carrier plate thickness
pocket_h       = 2.2;                              // pocket depth for the module pcb
z_carrier_bot  = z_module_bot + pocket_h - carrier_t;   // carrier underside
z_hub_bot      = z_boss_top - motor_boss_h;        // hub rests on the rotor top face (34.8)
hub_t          = 2.4;
z_hub_top      = z_hub_bot + hub_t;
// the column must reach from its foot to the carrier underside
col_foot_z     = z_plate_top - plate_t - 3;        // foot sits under the front plate, 3 mm foot
col_top_z      = z_carrier_bot + (carrier_t - pocket_h) - 0.2;   // 0.2 mm below the pocket floor
// main file
// Display carrier: holds the Waveshare 1.28in module on top of the fixed column.
// Module outline: round PCB dia 38.5, with a connector tab on one side (total length 39.89, width 38.5).
// This part is FIXED (never turns). It sits inside the ring with running clearance.
//
// Print with the display pocket facing UP. Four tiny tabs hold the module; no screws on the glass.
include <params.scad>

col_od   = motor_bore + 0.1 - 0.4;
pocket_d = disp_od + 0.4;            // PCB dia 38.5 + clearance
carrier_d = pocket_d + 2.4;          // 1.2 mm rim
boss_below = 4;                      // PROPOSAL
tab_w     = 8;                       // flat tab where the 13-pin connector/cable leaves (module length 39.89 - 38.5 = 1.4 mm of tab)

module display_carrier() {
    difference() {
        union() {
            cylinder(d = carrier_d, h = carrier_t);
            // boss BELOW the floor: gives the column a 5.6 mm deep socket instead of a 1.8 mm one
            translate([0, 0, -boss_below]) cylinder(d = col_od + 5, h = boss_below + 0.01);
        }
        // display pocket
        translate([0, 0, carrier_t - pocket_h]) cylinder(d = pocket_d, h = pocket_h + 1);
        // blind socket for the column (0.1 mm clearance, glue), stops 0.2 mm below the pocket floor
        translate([0, 0, -boss_below - 1]) cylinder(d = col_od + 0.1, h = boss_below + 1 + (carrier_t - pocket_h) - 0.2);
        // open the middle so the cable can come up from the column into the pocket
        translate([0, 0, -boss_below - 1]) cylinder(d = 4.0, h = boss_below + carrier_t + 3);
        // cable slot for the GH1.25 cable on the connector side (module tab), width tab_w
        translate([-tab_w/2, -pocket_d/2 - 1, carrier_t - pocket_h]) cube([tab_w, 6, pocket_h + 1]);
    }
}

display_carrier();
